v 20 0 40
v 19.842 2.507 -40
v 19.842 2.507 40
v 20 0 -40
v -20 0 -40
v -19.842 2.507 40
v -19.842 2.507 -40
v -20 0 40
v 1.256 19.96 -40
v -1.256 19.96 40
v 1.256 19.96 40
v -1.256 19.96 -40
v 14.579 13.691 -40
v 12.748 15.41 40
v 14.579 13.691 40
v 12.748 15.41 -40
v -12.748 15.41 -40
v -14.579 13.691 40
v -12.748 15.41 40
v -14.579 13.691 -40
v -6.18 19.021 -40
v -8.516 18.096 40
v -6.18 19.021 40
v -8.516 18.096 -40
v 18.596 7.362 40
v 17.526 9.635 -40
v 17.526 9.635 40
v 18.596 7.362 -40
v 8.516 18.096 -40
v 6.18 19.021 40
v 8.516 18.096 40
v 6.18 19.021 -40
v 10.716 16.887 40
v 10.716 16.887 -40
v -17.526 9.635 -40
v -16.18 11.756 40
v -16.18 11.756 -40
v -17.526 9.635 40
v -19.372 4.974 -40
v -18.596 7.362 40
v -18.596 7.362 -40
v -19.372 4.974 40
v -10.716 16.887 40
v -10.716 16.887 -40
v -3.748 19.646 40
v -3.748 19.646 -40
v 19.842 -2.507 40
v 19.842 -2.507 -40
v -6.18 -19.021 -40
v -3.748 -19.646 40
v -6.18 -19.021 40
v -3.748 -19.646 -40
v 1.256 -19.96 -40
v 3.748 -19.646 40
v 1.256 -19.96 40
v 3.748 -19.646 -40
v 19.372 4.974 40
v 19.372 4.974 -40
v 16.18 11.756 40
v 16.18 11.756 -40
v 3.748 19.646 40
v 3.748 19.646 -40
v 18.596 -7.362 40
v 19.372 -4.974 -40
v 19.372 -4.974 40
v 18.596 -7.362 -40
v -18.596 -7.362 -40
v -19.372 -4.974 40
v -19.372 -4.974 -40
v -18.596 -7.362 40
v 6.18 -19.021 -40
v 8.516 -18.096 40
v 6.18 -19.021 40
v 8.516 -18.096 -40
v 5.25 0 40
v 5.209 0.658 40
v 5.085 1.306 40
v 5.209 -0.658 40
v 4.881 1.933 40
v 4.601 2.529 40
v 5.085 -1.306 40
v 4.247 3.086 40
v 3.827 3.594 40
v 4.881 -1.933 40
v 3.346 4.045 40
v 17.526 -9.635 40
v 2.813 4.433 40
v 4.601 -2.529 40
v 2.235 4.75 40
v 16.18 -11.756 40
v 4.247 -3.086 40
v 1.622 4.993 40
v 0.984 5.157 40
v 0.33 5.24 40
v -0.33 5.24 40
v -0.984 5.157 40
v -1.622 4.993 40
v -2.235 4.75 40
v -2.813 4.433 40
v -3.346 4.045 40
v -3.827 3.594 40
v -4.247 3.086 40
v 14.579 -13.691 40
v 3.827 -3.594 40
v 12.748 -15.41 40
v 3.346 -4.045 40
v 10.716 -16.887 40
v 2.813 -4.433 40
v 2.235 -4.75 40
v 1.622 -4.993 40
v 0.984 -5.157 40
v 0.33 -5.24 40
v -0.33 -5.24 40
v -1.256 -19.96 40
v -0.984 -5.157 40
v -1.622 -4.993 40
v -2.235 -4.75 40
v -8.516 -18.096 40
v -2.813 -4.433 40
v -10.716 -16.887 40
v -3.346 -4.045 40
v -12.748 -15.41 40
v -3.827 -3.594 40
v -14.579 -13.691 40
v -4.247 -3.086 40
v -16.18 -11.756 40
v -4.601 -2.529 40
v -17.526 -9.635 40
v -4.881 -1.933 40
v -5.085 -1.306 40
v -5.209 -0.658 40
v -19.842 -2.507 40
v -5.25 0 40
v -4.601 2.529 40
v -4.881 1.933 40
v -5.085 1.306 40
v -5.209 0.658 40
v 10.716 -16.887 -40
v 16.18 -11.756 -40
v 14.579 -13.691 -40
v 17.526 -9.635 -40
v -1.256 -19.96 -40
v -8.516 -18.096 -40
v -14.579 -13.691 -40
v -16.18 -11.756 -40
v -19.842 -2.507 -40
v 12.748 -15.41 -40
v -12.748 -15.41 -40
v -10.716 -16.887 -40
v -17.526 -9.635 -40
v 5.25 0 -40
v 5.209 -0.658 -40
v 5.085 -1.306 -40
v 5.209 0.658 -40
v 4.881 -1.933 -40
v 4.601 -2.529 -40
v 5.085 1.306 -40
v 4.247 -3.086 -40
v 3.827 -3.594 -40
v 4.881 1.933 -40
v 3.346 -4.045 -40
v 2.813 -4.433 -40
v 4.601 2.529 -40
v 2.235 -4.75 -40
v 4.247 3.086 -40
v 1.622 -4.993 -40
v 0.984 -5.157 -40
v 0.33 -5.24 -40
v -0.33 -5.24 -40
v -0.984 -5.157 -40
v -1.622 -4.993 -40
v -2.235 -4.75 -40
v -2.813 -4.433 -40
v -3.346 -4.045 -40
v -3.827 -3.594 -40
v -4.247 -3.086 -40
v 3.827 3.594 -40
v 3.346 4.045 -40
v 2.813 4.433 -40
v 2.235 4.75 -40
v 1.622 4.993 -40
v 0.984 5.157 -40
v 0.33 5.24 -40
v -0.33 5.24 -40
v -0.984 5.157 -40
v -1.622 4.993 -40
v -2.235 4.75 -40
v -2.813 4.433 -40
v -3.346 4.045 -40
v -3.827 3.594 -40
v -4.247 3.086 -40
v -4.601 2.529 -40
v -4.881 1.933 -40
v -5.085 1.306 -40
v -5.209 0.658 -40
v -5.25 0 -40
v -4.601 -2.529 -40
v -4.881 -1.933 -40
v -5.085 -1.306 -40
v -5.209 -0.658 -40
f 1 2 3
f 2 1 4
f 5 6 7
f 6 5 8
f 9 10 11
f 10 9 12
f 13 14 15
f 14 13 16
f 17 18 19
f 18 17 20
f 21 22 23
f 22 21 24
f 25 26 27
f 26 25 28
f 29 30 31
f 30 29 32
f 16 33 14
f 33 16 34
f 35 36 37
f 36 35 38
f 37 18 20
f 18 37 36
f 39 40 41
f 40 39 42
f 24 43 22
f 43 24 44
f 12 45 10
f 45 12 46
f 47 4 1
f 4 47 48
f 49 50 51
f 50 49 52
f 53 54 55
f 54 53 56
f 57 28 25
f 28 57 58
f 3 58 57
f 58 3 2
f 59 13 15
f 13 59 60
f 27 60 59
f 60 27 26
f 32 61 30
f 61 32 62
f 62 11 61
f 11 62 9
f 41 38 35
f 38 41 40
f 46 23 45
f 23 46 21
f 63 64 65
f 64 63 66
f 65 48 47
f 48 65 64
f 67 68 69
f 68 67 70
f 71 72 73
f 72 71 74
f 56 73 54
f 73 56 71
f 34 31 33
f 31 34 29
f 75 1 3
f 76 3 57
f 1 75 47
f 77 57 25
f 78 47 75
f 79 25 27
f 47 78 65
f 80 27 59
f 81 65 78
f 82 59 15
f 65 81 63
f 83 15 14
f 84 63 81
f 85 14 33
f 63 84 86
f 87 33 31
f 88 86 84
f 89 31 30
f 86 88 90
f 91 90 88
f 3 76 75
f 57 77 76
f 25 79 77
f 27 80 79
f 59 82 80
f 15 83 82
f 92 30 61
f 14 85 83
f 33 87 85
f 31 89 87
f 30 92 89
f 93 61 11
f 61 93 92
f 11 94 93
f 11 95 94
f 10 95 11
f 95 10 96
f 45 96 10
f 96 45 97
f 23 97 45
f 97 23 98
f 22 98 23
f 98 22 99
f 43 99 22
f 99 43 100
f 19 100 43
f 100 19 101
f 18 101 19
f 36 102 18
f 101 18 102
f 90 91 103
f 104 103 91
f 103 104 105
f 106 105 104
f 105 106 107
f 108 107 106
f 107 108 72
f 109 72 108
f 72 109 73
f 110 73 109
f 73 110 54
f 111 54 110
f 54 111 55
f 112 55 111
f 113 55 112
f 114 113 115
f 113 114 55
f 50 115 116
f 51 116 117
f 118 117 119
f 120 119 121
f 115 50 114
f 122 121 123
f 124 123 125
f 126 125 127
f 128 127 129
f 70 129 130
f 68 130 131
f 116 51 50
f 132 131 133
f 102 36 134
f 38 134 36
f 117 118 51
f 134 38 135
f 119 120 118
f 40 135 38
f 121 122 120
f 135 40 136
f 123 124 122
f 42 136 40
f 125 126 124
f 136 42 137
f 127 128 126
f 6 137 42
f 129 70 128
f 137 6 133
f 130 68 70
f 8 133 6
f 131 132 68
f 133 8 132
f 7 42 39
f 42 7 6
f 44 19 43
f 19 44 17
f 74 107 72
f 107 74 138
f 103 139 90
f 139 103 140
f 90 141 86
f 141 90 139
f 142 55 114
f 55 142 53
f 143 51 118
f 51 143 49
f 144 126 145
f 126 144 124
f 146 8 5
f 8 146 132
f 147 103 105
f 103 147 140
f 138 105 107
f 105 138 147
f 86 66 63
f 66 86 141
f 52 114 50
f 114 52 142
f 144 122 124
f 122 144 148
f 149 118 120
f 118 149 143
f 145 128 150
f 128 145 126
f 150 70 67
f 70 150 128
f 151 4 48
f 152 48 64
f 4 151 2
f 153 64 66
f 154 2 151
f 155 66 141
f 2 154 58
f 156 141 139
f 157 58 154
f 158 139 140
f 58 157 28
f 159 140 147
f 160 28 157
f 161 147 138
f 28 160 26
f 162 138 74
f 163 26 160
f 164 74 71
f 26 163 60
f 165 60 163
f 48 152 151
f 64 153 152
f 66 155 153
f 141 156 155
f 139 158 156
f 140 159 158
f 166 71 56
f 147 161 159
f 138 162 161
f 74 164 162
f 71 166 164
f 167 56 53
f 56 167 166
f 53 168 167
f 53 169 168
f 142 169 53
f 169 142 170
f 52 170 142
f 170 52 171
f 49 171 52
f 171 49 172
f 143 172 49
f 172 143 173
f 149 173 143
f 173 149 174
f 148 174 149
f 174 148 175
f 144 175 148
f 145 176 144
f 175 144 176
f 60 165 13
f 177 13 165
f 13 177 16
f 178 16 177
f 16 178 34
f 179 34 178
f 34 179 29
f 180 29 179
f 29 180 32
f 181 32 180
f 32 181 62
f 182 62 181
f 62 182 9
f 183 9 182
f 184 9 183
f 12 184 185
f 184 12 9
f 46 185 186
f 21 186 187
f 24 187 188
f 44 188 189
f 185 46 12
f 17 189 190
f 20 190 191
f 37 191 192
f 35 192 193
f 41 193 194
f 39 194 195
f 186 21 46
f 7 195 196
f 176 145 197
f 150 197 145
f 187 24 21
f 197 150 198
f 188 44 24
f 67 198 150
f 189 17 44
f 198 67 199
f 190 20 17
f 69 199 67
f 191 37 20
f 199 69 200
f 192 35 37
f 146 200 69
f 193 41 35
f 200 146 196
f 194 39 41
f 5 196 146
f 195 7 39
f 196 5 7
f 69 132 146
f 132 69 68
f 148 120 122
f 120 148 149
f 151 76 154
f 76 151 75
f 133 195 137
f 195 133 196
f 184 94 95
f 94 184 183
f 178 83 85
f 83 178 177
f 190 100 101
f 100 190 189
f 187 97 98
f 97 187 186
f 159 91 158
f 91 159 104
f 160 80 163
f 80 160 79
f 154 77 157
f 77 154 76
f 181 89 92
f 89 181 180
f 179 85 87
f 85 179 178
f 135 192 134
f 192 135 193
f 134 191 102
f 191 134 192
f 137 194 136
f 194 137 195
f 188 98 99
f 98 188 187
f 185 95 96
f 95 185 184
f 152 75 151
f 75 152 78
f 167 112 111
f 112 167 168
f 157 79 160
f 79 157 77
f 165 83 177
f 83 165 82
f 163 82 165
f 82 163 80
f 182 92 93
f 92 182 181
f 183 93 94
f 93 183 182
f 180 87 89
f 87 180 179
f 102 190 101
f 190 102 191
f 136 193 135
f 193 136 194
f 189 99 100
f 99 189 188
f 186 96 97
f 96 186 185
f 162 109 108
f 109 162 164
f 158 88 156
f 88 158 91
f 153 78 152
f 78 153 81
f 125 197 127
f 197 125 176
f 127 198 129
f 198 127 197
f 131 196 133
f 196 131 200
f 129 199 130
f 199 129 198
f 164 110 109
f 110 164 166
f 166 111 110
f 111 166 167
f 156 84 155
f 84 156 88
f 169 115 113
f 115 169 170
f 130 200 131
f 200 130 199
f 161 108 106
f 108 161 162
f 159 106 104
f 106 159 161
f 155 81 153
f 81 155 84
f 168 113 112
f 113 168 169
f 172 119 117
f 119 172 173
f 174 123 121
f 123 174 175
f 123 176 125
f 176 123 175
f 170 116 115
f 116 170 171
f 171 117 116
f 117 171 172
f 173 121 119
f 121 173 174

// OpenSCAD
$fn = 50;


difference() {
	union() {
		translate(v = [0, 0, -40.0000000000]) {
			cylinder(h = 80, r = 20.0000000000);
		}
	}
	union() {
		translate(v = [0, 0, -100.0000000000]) {
			cylinder(h = 200, r = 5.2500000000);
		}
	}
}
